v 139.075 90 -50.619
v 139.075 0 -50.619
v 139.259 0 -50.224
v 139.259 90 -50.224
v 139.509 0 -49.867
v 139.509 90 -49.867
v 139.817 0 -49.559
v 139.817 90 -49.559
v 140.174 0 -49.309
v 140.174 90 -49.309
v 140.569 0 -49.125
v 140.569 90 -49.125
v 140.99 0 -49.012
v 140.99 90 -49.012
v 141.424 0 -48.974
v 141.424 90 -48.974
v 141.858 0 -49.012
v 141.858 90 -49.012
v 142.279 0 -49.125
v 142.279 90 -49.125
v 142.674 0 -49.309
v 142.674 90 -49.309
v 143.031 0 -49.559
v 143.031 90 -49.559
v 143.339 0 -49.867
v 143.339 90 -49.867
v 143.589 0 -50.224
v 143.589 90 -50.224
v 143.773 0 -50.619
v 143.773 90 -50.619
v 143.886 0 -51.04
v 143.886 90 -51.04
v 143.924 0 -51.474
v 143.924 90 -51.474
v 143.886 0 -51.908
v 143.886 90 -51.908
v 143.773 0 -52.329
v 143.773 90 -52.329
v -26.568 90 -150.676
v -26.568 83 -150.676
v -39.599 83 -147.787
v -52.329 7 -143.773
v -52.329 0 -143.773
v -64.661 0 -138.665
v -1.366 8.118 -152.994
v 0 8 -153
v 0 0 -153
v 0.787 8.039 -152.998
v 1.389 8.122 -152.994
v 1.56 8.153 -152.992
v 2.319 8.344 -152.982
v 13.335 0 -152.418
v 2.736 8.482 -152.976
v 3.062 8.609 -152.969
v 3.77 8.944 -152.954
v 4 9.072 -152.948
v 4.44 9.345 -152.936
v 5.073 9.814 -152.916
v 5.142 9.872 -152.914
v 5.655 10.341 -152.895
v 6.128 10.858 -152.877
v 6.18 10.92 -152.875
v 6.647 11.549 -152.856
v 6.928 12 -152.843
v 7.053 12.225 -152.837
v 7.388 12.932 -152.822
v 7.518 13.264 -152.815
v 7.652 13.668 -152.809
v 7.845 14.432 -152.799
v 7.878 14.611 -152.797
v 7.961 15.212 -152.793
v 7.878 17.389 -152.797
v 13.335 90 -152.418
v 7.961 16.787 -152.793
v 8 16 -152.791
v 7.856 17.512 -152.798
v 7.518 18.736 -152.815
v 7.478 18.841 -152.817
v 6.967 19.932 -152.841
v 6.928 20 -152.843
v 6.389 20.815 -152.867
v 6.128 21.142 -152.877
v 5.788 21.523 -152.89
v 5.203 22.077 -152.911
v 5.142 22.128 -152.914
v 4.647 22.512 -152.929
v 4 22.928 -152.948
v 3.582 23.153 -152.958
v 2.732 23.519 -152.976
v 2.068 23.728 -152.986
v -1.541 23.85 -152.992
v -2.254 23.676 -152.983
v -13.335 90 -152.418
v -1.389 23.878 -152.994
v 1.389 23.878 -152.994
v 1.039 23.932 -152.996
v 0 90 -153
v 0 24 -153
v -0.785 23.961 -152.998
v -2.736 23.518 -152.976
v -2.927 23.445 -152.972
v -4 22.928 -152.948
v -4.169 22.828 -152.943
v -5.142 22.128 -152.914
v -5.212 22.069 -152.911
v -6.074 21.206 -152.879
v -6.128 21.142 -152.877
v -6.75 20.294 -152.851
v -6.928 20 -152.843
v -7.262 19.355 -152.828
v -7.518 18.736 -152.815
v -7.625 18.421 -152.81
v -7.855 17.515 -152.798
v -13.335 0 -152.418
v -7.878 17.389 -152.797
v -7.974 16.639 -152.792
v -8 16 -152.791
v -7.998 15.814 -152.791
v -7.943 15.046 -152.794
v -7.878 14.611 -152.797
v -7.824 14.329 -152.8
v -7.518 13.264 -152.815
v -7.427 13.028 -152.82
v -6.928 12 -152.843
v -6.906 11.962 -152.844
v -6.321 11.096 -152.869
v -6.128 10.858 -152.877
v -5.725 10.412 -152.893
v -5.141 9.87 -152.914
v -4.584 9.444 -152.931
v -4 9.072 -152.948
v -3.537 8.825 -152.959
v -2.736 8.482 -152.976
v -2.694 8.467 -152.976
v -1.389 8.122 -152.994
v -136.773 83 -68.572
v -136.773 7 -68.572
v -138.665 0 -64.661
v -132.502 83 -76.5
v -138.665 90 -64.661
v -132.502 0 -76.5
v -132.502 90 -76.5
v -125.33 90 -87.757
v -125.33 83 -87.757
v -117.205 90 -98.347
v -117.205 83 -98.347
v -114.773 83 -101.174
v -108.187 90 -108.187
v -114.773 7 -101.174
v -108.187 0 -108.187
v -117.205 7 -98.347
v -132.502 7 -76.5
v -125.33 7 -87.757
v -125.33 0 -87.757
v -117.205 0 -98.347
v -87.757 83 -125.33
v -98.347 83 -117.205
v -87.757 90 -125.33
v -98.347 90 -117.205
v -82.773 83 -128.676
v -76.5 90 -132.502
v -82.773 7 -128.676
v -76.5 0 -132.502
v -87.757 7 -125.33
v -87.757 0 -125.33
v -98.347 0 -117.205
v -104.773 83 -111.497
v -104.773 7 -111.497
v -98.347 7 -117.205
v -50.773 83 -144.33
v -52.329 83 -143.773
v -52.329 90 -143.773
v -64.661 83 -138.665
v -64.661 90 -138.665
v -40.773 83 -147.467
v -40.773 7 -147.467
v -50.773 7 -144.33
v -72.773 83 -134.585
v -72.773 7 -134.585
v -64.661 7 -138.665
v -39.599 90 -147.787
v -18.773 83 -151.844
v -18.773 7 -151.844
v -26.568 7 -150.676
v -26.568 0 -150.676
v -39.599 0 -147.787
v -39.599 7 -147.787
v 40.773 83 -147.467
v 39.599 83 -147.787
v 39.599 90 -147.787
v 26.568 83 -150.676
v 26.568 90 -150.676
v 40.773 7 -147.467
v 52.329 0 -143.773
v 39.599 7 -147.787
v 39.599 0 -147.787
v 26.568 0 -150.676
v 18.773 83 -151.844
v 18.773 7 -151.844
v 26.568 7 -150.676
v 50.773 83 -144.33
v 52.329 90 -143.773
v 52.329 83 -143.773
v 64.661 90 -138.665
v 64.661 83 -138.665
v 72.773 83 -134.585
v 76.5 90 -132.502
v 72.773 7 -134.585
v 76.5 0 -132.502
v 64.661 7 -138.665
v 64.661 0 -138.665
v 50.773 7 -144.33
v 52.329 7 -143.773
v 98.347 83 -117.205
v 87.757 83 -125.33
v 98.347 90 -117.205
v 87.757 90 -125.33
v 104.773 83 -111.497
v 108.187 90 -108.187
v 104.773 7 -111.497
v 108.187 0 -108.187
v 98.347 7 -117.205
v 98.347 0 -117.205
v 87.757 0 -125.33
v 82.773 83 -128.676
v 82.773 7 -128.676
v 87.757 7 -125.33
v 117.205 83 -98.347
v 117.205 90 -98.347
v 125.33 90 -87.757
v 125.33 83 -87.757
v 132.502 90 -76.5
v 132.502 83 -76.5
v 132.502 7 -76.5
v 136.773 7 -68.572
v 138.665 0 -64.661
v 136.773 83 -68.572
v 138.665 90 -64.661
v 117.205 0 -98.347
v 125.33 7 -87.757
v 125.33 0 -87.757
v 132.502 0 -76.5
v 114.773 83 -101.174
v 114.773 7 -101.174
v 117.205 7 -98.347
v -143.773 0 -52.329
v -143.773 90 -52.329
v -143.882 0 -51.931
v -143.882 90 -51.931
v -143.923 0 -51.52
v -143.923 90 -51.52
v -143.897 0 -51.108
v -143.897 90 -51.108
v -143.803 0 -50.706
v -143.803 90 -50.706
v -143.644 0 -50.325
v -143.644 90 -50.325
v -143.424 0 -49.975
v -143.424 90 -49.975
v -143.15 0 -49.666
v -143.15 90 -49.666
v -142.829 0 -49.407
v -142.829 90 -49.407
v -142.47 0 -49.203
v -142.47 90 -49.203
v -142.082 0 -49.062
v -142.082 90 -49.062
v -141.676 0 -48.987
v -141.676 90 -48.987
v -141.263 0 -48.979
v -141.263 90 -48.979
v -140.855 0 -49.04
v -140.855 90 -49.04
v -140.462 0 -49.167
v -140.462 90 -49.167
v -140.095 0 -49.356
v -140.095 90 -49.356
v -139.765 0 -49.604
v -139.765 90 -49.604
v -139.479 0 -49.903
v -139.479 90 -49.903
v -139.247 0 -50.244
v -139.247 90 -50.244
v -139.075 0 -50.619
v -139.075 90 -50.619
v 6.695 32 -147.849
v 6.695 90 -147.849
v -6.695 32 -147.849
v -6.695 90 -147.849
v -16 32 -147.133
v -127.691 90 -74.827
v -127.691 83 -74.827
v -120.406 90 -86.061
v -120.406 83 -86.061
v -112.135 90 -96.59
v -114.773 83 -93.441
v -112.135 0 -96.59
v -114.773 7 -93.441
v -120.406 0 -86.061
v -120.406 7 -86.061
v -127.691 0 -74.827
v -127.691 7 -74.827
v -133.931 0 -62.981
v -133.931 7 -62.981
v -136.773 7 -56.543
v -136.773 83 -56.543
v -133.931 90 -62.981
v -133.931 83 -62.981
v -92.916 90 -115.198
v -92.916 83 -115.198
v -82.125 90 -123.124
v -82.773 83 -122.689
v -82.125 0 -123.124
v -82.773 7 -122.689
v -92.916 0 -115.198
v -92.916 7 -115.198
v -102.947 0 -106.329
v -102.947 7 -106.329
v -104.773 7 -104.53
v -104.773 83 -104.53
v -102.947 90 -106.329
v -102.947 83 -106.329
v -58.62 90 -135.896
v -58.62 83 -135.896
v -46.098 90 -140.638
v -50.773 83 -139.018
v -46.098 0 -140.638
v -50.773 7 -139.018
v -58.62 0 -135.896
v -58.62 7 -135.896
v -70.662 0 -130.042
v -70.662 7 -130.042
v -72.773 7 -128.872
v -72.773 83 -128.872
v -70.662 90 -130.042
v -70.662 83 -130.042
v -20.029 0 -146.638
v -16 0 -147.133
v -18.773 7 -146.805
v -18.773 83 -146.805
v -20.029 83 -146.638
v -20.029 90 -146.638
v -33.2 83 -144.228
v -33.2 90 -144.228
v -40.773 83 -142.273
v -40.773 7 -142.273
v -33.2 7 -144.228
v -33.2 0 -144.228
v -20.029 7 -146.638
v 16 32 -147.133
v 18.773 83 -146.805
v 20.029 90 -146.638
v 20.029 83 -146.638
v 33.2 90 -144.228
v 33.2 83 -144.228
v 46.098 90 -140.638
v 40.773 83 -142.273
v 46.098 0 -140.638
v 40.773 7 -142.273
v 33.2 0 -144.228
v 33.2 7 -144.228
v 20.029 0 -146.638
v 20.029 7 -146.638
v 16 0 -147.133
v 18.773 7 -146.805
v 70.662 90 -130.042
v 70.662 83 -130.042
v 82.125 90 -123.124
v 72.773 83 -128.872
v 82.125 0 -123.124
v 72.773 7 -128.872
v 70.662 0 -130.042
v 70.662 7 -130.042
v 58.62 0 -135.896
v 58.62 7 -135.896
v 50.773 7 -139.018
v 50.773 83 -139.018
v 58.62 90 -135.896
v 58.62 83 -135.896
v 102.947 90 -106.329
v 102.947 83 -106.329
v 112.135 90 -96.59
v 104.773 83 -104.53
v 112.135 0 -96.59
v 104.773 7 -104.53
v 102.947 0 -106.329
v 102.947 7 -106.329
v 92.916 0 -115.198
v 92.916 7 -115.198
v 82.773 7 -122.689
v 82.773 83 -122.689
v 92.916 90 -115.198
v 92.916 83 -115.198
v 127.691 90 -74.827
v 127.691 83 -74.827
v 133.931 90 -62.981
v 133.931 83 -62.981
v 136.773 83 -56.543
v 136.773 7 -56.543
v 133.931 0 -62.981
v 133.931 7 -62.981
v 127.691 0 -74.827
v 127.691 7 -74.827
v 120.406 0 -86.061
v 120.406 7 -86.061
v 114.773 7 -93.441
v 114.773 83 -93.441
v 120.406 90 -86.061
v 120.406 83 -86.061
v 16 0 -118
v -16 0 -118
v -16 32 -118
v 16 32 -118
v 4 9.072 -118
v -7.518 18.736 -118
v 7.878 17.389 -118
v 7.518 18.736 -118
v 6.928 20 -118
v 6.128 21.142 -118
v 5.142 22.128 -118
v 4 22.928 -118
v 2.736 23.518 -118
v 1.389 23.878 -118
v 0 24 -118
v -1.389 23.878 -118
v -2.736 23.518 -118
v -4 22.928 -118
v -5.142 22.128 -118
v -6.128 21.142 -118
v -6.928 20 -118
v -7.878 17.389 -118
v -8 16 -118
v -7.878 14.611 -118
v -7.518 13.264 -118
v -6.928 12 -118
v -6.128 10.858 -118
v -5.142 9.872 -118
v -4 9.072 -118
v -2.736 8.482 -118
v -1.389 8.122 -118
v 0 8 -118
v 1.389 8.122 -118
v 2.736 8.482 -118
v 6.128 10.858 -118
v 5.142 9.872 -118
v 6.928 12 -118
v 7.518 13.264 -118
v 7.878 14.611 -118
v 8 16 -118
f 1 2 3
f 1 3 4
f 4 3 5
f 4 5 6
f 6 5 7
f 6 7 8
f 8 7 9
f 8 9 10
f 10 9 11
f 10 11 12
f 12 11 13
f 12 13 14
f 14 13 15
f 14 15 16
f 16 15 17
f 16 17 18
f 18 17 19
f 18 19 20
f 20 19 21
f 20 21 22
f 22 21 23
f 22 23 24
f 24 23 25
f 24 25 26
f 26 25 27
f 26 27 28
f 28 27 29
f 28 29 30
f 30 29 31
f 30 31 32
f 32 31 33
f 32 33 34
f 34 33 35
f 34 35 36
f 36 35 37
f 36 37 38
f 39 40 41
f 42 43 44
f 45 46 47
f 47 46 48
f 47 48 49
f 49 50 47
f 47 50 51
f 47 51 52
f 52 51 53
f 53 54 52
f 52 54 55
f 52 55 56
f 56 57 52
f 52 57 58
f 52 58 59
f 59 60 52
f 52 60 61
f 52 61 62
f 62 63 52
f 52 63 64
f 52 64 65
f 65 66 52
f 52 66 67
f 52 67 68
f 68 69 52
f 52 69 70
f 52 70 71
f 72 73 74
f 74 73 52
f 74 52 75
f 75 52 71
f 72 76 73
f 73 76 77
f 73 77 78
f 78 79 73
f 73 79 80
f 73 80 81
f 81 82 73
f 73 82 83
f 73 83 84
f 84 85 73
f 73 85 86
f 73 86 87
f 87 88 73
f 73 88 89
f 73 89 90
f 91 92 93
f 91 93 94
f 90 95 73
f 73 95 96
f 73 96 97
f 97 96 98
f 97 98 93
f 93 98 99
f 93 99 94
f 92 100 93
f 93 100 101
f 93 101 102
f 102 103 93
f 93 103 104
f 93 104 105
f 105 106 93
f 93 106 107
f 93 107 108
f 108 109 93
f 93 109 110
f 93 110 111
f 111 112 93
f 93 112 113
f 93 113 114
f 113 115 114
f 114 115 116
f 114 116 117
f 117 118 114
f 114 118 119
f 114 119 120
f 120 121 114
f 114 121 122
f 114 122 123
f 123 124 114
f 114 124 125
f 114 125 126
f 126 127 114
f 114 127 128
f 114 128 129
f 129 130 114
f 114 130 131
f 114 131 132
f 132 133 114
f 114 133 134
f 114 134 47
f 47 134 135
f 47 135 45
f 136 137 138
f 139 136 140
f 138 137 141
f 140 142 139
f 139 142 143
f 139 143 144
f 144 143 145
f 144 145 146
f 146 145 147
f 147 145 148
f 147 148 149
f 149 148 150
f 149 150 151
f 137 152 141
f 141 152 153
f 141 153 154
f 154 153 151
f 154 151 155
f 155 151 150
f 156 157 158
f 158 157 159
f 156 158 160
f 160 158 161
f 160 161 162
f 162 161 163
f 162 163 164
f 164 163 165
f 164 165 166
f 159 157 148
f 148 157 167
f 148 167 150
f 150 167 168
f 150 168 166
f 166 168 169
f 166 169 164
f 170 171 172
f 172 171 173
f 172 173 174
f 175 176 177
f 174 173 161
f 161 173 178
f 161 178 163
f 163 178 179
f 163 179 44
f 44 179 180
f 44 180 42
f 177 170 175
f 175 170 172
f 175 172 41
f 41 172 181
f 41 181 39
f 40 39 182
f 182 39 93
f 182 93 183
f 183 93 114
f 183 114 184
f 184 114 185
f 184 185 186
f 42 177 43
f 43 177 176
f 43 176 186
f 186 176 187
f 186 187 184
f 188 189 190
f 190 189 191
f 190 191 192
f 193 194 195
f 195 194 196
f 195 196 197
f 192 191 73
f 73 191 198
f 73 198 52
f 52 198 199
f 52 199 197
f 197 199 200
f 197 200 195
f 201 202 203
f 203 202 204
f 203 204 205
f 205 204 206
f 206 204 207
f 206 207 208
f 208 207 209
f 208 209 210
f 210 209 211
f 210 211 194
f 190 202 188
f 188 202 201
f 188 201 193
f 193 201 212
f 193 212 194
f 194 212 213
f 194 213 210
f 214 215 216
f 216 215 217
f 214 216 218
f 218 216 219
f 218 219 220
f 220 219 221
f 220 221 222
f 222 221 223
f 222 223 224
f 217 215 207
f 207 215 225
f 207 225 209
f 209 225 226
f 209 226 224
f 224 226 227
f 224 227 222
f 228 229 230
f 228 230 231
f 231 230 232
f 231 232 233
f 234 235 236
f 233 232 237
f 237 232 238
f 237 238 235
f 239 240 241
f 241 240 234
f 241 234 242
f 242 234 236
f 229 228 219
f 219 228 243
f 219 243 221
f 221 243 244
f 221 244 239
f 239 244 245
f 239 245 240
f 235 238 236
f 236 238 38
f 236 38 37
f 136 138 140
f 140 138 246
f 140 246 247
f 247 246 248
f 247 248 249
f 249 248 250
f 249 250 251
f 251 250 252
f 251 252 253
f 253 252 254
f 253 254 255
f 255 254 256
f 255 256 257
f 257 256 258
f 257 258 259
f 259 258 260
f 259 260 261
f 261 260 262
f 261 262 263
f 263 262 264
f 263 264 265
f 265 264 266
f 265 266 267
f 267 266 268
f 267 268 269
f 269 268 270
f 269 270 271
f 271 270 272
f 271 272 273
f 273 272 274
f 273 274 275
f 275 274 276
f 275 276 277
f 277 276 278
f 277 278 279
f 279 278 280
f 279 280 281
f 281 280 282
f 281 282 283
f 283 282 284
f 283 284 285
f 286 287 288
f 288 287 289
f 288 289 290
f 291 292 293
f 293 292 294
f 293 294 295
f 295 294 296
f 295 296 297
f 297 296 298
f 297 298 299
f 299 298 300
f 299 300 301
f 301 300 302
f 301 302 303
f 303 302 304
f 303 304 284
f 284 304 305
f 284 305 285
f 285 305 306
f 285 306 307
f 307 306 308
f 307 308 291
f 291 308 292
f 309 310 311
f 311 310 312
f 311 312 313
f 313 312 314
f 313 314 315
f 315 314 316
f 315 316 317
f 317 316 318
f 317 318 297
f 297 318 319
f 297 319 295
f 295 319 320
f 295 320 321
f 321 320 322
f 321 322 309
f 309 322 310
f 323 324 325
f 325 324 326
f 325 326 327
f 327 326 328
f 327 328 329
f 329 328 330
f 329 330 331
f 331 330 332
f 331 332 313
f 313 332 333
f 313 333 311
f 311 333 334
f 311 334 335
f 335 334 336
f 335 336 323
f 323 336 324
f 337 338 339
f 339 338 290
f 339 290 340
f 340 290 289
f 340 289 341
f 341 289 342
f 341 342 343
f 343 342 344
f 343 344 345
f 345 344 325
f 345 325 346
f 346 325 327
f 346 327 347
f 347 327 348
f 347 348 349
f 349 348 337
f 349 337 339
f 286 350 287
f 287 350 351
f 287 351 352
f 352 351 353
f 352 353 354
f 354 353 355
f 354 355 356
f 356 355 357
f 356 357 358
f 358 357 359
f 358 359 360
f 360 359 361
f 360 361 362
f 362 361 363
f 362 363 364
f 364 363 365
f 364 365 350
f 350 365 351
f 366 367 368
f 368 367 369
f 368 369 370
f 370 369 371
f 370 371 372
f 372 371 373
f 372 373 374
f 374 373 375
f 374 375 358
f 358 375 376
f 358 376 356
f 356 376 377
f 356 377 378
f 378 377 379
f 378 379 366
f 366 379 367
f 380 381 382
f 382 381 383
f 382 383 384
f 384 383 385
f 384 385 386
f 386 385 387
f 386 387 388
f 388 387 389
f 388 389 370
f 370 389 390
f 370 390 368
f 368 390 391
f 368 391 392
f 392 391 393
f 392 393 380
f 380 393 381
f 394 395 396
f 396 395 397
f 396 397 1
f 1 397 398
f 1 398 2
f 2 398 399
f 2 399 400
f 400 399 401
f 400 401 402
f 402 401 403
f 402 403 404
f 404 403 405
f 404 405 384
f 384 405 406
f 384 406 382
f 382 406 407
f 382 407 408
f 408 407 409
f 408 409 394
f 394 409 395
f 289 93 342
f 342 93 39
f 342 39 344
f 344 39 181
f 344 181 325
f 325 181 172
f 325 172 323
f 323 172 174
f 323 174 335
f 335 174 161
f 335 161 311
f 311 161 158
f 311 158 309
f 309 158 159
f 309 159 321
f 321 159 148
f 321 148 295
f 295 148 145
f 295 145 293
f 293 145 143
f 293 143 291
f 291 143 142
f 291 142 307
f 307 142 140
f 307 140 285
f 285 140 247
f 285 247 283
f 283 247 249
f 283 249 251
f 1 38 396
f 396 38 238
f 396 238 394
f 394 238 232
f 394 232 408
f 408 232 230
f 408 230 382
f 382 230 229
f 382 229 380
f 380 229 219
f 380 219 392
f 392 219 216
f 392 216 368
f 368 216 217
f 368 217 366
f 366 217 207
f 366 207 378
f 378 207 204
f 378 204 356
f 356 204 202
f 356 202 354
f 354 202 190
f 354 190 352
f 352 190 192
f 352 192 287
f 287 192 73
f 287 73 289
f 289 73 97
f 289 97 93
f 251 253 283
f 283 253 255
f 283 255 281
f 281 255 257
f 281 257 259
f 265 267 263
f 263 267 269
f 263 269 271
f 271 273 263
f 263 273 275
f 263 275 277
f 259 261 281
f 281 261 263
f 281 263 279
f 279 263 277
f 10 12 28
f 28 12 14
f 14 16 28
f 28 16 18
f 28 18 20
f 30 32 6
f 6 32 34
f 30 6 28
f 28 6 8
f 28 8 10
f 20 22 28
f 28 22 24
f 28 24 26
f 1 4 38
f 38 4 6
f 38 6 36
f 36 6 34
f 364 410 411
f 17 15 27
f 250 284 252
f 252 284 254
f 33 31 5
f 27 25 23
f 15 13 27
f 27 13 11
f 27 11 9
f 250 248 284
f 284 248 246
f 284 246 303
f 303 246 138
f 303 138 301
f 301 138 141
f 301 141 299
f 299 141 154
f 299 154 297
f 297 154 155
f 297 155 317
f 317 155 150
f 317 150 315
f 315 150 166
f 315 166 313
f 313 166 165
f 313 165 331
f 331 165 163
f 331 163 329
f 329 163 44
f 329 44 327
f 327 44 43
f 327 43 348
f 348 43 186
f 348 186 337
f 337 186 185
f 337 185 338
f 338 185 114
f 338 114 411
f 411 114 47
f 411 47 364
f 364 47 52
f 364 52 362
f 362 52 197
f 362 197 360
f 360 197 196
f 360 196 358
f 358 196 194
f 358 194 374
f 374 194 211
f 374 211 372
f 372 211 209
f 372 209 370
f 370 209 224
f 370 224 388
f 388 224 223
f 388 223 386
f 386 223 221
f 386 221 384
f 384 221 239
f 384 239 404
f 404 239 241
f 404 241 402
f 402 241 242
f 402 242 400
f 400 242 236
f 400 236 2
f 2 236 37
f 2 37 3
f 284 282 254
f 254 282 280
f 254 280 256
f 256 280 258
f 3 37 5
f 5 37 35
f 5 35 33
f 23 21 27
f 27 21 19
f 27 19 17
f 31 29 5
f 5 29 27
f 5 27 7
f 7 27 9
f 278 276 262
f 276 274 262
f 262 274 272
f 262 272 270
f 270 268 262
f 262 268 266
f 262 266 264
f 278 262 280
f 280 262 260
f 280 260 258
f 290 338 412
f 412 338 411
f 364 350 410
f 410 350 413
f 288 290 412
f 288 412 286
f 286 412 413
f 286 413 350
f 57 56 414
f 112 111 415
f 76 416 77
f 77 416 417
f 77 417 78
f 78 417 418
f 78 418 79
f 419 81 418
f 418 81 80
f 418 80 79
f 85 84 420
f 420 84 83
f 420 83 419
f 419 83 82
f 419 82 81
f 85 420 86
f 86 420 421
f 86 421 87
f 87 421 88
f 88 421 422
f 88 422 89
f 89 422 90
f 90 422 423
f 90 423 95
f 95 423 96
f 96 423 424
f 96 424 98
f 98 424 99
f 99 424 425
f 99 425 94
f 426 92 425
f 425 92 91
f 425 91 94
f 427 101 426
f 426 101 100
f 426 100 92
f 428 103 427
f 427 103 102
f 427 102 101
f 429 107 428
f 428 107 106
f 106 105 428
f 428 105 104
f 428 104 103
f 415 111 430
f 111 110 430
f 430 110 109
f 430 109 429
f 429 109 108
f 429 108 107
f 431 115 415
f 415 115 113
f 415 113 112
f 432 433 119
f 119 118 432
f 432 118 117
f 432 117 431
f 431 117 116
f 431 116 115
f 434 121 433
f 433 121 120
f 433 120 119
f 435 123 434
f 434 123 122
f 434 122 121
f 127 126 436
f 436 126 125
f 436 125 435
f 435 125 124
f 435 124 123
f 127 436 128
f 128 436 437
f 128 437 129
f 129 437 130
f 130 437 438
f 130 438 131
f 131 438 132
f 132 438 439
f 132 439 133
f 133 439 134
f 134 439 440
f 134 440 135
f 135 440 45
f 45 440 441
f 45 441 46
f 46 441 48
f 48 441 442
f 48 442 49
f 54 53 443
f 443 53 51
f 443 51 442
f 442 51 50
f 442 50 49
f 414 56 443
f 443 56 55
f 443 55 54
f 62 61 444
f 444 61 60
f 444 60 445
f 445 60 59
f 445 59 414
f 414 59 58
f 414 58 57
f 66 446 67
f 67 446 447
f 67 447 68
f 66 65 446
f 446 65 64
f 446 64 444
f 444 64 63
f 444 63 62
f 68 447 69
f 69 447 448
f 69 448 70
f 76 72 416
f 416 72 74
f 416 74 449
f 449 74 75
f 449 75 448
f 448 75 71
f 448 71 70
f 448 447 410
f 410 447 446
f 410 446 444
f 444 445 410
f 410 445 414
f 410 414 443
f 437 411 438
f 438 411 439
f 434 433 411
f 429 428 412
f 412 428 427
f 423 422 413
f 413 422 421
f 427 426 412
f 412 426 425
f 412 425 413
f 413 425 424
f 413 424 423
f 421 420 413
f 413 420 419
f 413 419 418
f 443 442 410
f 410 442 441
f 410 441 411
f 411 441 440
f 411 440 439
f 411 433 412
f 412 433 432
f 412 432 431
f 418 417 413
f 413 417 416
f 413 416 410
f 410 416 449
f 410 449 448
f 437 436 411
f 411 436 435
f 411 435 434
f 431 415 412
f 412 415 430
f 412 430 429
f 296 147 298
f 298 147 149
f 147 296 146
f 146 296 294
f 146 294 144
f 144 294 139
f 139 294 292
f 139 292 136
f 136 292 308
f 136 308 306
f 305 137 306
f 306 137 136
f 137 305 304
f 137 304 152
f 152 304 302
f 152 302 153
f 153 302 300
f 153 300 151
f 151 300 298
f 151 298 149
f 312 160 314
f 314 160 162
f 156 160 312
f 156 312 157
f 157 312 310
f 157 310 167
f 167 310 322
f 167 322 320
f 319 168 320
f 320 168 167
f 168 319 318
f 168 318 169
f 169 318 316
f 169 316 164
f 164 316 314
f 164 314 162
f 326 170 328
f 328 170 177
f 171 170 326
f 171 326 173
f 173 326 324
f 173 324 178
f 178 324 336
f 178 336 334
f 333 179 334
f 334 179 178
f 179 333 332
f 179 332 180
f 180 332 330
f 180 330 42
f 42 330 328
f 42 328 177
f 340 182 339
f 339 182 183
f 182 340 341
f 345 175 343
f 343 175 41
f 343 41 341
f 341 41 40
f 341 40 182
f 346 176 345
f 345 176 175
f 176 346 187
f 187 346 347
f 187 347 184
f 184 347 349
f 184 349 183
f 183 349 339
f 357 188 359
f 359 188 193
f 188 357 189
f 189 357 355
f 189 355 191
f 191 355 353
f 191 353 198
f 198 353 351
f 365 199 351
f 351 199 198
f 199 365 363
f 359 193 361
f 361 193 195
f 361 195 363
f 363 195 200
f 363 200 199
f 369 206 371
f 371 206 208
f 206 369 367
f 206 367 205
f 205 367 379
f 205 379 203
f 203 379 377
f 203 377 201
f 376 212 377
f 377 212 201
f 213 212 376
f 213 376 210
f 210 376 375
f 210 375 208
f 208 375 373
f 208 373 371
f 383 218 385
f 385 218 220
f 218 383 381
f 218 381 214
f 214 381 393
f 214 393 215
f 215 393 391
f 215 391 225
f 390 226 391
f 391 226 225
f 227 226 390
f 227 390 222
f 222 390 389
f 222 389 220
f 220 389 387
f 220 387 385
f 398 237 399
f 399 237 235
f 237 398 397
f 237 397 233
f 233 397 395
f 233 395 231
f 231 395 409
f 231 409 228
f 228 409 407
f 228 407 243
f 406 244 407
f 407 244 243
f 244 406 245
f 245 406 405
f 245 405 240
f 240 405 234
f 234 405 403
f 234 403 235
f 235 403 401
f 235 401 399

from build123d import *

# Parameters (mm, degrees)
BOSS_EXTRUDE1_DEPTH = 90
BOSS_EXTRUDE2_REACH = 155
SKETCH2_W           = 32
SKETCH2_H           = 32
SKETCH2_R           = 8
SKETCH3_R           = 8
CUT_EXTRUDE1_DEPTH  = 210
SKETCH4_W           = 32
SKETCH4_H           = 118
CUT_EXTRUDE2_DEPTH  = 210
SKETCH5_W           = 22
SKETCH5_H           = 76
CUT_EXTRUDE4_DEPTH  = 210


with BuildPart() as part:
    # Sketch1 → Boss-Extrude1 (new body)
    with BuildSketch(Plane(origin=(0, 0, 0), x_dir=(1, 0, 0), z_dir=(0, 1, 0))):
        with BuildLine():
            ThreePointArc((139.074507876, 50.618981212), (0, 148), (-139.074507876, 50.618981212))
            ThreePointArc((-139.074507876, 50.618981212), (-142.278789787, 49.124800019), (-143.77297098, 52.329081929))
            ThreePointArc((-143.77297098, 52.329081929), (0, 153), (143.77297098, 52.329081929))
            ThreePointArc((143.77297098, 52.329081929), (142.278789787, 49.124800019), (139.074507876, 50.618981212))
        make_face()
    extrude(amount=BOSS_EXTRUDE1_DEPTH)

    # Sketch2 → Boss-Extrude2 (add, up to next)
    with BuildSketch(Plane.XY, mode=Mode.PRIVATE) as boss_extrude2_sk1:
        with Locations((0, 16)):
            Rectangle(SKETCH2_W, SKETCH2_H)
        with Locations((0, 16)):
            Circle(SKETCH2_R, mode=Mode.SUBTRACT)
    boss_extrude2_tool1 = extrude(boss_extrude2_sk1.sketch, amount=-BOSS_EXTRUDE2_REACH, mode=Mode.PRIVATE) - part.part
    add(boss_extrude2_tool1.solids().sort_by_distance((0, 0.452548, 0))[0])

    # Sketch3 → Cut-Extrude1 (cut)
    with BuildSketch(Plane.XY):
        with Locations((0, 16)):
            Circle(SKETCH3_R)
    extrude(amount=-CUT_EXTRUDE1_DEPTH, mode=Mode.SUBTRACT)

    # Sketch4 → Cut-Extrude2 (cut)
    with BuildSketch(Plane(origin=(0, 32, 0), x_dir=(1, 0, 0), z_dir=(0, 1, 0))):
        with Locations((0, 59)):
            Rectangle(SKETCH4_W, SKETCH4_H)
    extrude(amount=-CUT_EXTRUDE2_DEPTH, mode=Mode.SUBTRACT)

    # Sketch5 → Cut-Extrude4 (cut)
    with BuildSketch(Plane(origin=(0, 0, -153), x_dir=(-1, 0, 0), z_dir=(0, 0, -1))):
        with Locations((-125.77297098, 45)):
            Rectangle(SKETCH5_W, SKETCH5_H)
        with Locations((-93.77297098, 45)):
            Rectangle(SKETCH5_W, SKETCH5_H)
        with Locations((-61.77297098, 45)):
            Rectangle(SKETCH5_W, SKETCH5_H)
        with Locations((29.77297098, 45)):
            Rectangle(SKETCH5_W, SKETCH5_H)
        with Locations((61.77297098, 45)):
            Rectangle(SKETCH5_W, SKETCH5_H)
        with Locations((93.77297098, 45)):
            Rectangle(SKETCH5_W, SKETCH5_H)
        with Locations((125.77297098, 45)):
            Rectangle(SKETCH5_W, SKETCH5_H)
        with Locations((-29.77297098, 45)):
            Rectangle(SKETCH5_W, SKETCH5_H)
    extrude(amount=-CUT_EXTRUDE4_DEPTH, mode=Mode.SUBTRACT)


solid = part.part
